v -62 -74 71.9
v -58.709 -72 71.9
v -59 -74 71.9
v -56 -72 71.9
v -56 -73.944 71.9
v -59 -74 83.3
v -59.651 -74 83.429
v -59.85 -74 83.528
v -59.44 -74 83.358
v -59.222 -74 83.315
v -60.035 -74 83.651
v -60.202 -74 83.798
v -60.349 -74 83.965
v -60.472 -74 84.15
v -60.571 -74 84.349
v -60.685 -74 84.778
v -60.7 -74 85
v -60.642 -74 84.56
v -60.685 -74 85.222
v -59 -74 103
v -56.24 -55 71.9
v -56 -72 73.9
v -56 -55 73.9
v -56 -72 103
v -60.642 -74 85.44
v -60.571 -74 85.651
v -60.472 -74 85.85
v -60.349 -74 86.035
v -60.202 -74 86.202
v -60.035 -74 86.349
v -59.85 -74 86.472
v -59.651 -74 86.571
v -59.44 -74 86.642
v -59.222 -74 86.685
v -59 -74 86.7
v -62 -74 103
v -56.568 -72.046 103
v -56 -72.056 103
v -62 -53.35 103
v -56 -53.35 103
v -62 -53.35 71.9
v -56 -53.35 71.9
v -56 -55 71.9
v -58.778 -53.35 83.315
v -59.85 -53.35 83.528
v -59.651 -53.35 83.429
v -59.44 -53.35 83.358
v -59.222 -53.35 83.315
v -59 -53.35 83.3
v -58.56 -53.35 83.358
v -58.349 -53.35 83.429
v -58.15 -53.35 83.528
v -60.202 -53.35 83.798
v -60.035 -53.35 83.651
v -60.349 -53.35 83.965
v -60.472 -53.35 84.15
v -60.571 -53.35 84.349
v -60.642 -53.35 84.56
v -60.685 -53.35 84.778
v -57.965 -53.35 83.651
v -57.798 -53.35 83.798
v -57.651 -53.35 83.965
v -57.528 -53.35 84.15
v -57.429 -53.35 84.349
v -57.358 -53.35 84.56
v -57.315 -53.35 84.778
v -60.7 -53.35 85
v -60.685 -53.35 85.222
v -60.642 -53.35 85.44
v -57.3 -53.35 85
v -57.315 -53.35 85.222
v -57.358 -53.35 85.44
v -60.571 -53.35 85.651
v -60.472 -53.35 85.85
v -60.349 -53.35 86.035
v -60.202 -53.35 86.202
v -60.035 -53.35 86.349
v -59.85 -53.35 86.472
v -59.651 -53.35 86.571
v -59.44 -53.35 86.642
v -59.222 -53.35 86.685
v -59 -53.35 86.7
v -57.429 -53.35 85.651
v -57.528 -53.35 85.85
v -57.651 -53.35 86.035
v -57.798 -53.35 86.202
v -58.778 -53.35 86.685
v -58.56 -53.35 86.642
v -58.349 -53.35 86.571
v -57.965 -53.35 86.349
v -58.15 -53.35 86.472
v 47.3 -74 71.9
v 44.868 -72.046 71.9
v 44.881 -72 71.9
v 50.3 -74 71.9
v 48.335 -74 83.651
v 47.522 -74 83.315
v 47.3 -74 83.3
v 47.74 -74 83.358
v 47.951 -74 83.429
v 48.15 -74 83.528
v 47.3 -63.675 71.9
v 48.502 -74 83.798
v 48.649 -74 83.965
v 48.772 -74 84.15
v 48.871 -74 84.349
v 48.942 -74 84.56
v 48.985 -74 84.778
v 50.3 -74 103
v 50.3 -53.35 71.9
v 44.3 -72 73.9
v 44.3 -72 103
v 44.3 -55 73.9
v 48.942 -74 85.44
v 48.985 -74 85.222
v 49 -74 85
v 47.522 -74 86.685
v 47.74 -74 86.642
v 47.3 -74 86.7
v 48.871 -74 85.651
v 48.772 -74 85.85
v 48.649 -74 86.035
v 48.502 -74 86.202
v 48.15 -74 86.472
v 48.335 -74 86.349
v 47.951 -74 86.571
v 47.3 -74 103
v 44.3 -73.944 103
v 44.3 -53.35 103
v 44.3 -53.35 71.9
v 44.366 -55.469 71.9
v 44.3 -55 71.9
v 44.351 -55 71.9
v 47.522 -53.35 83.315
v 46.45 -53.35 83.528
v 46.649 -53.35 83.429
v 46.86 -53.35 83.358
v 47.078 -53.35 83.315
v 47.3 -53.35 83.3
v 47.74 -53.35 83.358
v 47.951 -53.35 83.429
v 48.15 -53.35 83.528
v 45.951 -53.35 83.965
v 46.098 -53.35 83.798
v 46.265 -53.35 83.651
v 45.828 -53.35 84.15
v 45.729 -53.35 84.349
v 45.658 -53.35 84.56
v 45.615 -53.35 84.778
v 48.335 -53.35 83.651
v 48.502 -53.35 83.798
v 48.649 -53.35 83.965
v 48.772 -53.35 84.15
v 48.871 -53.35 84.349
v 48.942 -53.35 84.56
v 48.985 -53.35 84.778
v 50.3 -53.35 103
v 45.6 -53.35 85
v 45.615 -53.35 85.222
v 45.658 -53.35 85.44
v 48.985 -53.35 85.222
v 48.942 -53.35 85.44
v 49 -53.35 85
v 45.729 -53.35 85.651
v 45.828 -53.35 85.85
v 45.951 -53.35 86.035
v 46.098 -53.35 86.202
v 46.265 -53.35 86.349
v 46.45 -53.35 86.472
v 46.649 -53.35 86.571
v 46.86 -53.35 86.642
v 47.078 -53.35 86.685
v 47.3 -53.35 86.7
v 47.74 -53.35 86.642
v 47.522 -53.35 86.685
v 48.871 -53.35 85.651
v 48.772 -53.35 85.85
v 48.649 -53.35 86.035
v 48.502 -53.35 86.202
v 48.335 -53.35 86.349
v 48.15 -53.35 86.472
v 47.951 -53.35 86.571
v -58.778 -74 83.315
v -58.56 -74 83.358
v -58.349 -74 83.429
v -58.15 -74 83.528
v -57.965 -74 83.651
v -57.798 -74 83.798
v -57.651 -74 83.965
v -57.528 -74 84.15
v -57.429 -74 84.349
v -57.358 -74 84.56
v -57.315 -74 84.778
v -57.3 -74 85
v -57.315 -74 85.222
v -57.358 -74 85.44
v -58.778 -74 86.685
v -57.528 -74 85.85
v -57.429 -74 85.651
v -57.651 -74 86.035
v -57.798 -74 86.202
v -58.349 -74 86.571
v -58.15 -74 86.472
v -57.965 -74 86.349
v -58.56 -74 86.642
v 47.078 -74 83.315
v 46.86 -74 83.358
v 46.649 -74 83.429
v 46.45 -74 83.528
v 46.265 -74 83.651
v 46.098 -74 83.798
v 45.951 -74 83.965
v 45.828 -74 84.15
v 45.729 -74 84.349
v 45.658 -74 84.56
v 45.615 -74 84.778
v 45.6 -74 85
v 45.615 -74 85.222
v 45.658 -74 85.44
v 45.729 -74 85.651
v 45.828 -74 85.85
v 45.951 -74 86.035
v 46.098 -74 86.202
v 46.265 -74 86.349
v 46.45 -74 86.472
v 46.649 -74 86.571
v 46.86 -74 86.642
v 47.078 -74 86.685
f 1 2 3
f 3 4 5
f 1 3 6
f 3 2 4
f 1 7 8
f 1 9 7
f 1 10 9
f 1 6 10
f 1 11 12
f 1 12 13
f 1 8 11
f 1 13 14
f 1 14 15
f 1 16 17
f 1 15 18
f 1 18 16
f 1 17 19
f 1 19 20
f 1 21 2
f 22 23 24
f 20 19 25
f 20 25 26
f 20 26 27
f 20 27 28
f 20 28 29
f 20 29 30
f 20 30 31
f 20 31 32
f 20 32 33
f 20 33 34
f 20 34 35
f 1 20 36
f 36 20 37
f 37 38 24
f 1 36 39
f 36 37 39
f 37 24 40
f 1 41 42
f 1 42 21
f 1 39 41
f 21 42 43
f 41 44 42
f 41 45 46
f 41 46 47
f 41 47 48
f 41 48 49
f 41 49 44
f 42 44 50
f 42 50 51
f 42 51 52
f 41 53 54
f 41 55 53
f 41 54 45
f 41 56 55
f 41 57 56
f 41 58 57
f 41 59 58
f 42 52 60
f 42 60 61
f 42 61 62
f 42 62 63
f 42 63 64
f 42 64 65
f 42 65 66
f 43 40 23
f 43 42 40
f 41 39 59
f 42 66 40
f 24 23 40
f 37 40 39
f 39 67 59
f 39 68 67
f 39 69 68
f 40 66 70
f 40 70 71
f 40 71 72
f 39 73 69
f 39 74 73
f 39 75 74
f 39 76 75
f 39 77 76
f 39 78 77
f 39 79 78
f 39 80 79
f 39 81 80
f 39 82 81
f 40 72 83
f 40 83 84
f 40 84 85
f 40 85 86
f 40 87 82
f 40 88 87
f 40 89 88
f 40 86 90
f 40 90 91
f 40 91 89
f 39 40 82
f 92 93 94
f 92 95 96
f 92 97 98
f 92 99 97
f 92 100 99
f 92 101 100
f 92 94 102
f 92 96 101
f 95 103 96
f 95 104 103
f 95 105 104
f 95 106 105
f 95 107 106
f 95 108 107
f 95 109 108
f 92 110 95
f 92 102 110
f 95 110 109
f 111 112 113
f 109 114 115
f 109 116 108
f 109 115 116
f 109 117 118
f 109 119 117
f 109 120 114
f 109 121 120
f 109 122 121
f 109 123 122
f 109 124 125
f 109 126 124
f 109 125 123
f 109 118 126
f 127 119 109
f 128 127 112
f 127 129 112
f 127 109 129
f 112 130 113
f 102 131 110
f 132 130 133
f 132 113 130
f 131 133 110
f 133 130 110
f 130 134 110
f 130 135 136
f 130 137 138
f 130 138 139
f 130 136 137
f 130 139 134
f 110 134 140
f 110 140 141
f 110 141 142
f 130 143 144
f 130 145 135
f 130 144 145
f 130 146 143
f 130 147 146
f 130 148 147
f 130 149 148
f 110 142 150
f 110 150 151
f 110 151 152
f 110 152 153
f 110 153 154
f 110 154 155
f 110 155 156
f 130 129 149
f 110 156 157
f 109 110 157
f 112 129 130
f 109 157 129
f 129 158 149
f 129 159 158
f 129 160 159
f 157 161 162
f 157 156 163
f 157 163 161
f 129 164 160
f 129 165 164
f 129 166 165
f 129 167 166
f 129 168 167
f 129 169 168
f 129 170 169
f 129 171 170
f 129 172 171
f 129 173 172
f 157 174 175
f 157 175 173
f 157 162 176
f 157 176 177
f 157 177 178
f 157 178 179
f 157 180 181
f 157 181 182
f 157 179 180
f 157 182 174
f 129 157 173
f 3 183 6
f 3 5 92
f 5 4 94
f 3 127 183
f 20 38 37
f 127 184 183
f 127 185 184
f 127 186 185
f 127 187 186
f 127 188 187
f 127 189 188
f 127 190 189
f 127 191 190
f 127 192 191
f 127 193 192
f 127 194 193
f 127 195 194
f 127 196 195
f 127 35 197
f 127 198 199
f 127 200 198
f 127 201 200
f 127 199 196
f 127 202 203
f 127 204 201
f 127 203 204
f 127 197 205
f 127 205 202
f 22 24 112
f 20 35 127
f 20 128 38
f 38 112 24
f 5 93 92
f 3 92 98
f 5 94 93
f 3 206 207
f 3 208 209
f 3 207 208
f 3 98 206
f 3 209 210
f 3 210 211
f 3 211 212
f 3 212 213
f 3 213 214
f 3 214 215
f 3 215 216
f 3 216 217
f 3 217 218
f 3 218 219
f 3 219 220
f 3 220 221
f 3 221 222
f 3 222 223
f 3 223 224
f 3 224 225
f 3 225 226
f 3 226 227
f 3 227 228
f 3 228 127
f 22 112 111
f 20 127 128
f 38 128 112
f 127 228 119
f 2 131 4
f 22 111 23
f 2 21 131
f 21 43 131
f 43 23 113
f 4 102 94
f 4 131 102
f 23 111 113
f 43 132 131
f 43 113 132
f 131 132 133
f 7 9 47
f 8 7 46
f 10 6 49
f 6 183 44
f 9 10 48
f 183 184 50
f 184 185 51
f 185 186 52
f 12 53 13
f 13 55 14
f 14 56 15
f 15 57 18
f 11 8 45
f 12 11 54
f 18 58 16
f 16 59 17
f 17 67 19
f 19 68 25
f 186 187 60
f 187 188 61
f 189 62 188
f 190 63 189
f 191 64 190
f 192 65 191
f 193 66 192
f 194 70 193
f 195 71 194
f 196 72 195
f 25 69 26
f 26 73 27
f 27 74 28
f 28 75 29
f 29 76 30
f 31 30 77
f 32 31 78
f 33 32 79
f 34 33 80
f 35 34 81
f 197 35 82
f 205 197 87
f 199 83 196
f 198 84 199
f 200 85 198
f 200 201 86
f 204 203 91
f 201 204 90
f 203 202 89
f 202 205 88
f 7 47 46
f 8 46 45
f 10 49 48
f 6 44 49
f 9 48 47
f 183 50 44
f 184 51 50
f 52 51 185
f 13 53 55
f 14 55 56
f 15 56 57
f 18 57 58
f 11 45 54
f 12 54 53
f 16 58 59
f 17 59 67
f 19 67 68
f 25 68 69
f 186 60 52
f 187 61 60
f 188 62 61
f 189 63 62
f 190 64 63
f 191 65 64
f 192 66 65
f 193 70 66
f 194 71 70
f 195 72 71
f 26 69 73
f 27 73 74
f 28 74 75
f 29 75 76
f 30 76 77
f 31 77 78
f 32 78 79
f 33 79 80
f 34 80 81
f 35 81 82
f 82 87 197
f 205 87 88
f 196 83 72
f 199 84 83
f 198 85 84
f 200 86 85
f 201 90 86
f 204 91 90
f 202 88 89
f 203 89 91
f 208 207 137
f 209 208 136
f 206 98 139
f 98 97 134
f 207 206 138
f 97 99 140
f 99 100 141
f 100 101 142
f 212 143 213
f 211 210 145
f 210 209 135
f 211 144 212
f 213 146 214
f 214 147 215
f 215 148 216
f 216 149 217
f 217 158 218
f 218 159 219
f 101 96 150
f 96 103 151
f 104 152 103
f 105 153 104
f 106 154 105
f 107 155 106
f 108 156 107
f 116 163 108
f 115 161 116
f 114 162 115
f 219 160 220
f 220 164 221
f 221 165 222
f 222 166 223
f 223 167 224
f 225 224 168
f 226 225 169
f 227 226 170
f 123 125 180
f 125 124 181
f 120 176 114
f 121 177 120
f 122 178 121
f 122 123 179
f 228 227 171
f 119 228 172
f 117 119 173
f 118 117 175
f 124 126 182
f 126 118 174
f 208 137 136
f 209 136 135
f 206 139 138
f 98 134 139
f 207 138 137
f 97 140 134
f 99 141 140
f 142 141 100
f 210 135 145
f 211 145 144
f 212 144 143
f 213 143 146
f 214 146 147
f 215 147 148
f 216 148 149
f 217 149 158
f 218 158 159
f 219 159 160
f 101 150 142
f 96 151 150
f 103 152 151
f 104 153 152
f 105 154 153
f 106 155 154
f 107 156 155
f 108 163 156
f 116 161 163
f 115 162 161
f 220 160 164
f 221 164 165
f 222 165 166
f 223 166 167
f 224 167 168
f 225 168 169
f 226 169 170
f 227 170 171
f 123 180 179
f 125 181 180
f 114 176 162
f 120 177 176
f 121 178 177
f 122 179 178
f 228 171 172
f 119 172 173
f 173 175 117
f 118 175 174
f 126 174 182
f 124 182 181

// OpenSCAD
// =============================================================================
// JETSON -Y CABLE COWL — bolt-on flank shield for STRAIGHT port plugs (#38)
// =============================================================================
// The Jetson ports face -Y (robot RIGHT). With no right-angle plugs, STRAIGHT
// plugs stick out ~13-25mm (barrel 13 / USB-C 20 / USB-A 22 / RJ45 25) — past
// the tight flank channel, so on a right-side fall the ground would CRUSH them.
// This cowl is an outer IMPACT WALL (y-74) + 2 end walls that bolt to the
// cradle's -y uprights + a floor shelf: a -y fall hits the wall, not the plugs.
// Open TOP + open +Y (toward the case) so you plug the cables in with the cowl
// OFF, then bolt it on. The floor guides the cables inboard to the deck edge
// (y-55) -> the riser CASE_SLOT -> the bay.
//
// SEPARATE part (not fused to the cradle) so the assembly order works: cradle
//   down -> case in -> PLUG the -y cables (full access) -> drop this cowl on +
//   2x M3 from the -y (outer) side into the cradle -y uprights (COWL_BOLT_Z
//   heat-sets, pressed from the upright -y faces). -> then the 4 case clamps.
// Frame: TRUNK/world (matches jetson_case_mount — keep the shared consts in sync).
// Depth: inner wall face y-72 clears USB-A/C plugs (~y-69); RJ45 (~y-72, dev-
//   only) reaches the wall / pokes the open top. Cantilevers ~19 past the riser
//   -y edge (y-55) — mid-body, verified clear of the legs.
// PRINT: PA6-CF (impact part), OUTER-WALL-DOWN or end-down; ~8g. print 1.

$fn = 48; EPS = 0.05; M3_CLEAR = 3.4;

// ---- shared with jetson_case_mount (KEEP IN SYNC) ----
FRONT_PXC = 47.3; REAR_PXC = -59.0;   // -y upright x centres
POST_YC = 50.35; POST_W = 6;          // upright y centre + size
DECK = 71.9; COWL_BOLT_Z = 85;        // deck top + cowl bolt z

// ---- cowl geometry ----
COWL_YI = -72; COWL_YO = -74;         // impact wall: inner y-72, outer y-74
COWL_Z1 = 103;                        // wall top (covers the ports z72..101)
UP_FACE = -POST_YC - POST_W / 2;      // -y upright -y face = -53.35 (end-wall root)

module jetson_cowl() {
    difference() {
        union() {
            // outer IMPACT wall (spans between the -y uprights)
            translate([REAR_PXC, COWL_YO, DECK])
                cube([FRONT_PXC - REAR_PXC, COWL_YI - COWL_YO, COWL_Z1 - DECK]);
            // 2 end walls: outer wall -> the -y upright -y faces (bolt roots)
            for (px = [REAR_PXC, FRONT_PXC])
                translate([px - POST_W / 2, COWL_YO, DECK])
                    cube([POST_W, UP_FACE - COWL_YO, COWL_Z1 - DECK]);
            // floor shelf: catches cables, bridges to the deck edge (y-55)
            translate([REAR_PXC, COWL_YI, DECK])
                cube([FRONT_PXC - REAR_PXC, -55 - COWL_YI, 2]);
        }
        // 2x M3 clearance (axis y) through the end walls -> the upright heat-sets
        for (px = [REAR_PXC, FRONT_PXC])
            translate([px, COWL_YO - EPS, COWL_BOLT_Z]) rotate([-90, 0, 0])
                cylinder(d = M3_CLEAR, h = UP_FACE - COWL_YO + 2 * EPS);
    }
}

jetson_cowl();
